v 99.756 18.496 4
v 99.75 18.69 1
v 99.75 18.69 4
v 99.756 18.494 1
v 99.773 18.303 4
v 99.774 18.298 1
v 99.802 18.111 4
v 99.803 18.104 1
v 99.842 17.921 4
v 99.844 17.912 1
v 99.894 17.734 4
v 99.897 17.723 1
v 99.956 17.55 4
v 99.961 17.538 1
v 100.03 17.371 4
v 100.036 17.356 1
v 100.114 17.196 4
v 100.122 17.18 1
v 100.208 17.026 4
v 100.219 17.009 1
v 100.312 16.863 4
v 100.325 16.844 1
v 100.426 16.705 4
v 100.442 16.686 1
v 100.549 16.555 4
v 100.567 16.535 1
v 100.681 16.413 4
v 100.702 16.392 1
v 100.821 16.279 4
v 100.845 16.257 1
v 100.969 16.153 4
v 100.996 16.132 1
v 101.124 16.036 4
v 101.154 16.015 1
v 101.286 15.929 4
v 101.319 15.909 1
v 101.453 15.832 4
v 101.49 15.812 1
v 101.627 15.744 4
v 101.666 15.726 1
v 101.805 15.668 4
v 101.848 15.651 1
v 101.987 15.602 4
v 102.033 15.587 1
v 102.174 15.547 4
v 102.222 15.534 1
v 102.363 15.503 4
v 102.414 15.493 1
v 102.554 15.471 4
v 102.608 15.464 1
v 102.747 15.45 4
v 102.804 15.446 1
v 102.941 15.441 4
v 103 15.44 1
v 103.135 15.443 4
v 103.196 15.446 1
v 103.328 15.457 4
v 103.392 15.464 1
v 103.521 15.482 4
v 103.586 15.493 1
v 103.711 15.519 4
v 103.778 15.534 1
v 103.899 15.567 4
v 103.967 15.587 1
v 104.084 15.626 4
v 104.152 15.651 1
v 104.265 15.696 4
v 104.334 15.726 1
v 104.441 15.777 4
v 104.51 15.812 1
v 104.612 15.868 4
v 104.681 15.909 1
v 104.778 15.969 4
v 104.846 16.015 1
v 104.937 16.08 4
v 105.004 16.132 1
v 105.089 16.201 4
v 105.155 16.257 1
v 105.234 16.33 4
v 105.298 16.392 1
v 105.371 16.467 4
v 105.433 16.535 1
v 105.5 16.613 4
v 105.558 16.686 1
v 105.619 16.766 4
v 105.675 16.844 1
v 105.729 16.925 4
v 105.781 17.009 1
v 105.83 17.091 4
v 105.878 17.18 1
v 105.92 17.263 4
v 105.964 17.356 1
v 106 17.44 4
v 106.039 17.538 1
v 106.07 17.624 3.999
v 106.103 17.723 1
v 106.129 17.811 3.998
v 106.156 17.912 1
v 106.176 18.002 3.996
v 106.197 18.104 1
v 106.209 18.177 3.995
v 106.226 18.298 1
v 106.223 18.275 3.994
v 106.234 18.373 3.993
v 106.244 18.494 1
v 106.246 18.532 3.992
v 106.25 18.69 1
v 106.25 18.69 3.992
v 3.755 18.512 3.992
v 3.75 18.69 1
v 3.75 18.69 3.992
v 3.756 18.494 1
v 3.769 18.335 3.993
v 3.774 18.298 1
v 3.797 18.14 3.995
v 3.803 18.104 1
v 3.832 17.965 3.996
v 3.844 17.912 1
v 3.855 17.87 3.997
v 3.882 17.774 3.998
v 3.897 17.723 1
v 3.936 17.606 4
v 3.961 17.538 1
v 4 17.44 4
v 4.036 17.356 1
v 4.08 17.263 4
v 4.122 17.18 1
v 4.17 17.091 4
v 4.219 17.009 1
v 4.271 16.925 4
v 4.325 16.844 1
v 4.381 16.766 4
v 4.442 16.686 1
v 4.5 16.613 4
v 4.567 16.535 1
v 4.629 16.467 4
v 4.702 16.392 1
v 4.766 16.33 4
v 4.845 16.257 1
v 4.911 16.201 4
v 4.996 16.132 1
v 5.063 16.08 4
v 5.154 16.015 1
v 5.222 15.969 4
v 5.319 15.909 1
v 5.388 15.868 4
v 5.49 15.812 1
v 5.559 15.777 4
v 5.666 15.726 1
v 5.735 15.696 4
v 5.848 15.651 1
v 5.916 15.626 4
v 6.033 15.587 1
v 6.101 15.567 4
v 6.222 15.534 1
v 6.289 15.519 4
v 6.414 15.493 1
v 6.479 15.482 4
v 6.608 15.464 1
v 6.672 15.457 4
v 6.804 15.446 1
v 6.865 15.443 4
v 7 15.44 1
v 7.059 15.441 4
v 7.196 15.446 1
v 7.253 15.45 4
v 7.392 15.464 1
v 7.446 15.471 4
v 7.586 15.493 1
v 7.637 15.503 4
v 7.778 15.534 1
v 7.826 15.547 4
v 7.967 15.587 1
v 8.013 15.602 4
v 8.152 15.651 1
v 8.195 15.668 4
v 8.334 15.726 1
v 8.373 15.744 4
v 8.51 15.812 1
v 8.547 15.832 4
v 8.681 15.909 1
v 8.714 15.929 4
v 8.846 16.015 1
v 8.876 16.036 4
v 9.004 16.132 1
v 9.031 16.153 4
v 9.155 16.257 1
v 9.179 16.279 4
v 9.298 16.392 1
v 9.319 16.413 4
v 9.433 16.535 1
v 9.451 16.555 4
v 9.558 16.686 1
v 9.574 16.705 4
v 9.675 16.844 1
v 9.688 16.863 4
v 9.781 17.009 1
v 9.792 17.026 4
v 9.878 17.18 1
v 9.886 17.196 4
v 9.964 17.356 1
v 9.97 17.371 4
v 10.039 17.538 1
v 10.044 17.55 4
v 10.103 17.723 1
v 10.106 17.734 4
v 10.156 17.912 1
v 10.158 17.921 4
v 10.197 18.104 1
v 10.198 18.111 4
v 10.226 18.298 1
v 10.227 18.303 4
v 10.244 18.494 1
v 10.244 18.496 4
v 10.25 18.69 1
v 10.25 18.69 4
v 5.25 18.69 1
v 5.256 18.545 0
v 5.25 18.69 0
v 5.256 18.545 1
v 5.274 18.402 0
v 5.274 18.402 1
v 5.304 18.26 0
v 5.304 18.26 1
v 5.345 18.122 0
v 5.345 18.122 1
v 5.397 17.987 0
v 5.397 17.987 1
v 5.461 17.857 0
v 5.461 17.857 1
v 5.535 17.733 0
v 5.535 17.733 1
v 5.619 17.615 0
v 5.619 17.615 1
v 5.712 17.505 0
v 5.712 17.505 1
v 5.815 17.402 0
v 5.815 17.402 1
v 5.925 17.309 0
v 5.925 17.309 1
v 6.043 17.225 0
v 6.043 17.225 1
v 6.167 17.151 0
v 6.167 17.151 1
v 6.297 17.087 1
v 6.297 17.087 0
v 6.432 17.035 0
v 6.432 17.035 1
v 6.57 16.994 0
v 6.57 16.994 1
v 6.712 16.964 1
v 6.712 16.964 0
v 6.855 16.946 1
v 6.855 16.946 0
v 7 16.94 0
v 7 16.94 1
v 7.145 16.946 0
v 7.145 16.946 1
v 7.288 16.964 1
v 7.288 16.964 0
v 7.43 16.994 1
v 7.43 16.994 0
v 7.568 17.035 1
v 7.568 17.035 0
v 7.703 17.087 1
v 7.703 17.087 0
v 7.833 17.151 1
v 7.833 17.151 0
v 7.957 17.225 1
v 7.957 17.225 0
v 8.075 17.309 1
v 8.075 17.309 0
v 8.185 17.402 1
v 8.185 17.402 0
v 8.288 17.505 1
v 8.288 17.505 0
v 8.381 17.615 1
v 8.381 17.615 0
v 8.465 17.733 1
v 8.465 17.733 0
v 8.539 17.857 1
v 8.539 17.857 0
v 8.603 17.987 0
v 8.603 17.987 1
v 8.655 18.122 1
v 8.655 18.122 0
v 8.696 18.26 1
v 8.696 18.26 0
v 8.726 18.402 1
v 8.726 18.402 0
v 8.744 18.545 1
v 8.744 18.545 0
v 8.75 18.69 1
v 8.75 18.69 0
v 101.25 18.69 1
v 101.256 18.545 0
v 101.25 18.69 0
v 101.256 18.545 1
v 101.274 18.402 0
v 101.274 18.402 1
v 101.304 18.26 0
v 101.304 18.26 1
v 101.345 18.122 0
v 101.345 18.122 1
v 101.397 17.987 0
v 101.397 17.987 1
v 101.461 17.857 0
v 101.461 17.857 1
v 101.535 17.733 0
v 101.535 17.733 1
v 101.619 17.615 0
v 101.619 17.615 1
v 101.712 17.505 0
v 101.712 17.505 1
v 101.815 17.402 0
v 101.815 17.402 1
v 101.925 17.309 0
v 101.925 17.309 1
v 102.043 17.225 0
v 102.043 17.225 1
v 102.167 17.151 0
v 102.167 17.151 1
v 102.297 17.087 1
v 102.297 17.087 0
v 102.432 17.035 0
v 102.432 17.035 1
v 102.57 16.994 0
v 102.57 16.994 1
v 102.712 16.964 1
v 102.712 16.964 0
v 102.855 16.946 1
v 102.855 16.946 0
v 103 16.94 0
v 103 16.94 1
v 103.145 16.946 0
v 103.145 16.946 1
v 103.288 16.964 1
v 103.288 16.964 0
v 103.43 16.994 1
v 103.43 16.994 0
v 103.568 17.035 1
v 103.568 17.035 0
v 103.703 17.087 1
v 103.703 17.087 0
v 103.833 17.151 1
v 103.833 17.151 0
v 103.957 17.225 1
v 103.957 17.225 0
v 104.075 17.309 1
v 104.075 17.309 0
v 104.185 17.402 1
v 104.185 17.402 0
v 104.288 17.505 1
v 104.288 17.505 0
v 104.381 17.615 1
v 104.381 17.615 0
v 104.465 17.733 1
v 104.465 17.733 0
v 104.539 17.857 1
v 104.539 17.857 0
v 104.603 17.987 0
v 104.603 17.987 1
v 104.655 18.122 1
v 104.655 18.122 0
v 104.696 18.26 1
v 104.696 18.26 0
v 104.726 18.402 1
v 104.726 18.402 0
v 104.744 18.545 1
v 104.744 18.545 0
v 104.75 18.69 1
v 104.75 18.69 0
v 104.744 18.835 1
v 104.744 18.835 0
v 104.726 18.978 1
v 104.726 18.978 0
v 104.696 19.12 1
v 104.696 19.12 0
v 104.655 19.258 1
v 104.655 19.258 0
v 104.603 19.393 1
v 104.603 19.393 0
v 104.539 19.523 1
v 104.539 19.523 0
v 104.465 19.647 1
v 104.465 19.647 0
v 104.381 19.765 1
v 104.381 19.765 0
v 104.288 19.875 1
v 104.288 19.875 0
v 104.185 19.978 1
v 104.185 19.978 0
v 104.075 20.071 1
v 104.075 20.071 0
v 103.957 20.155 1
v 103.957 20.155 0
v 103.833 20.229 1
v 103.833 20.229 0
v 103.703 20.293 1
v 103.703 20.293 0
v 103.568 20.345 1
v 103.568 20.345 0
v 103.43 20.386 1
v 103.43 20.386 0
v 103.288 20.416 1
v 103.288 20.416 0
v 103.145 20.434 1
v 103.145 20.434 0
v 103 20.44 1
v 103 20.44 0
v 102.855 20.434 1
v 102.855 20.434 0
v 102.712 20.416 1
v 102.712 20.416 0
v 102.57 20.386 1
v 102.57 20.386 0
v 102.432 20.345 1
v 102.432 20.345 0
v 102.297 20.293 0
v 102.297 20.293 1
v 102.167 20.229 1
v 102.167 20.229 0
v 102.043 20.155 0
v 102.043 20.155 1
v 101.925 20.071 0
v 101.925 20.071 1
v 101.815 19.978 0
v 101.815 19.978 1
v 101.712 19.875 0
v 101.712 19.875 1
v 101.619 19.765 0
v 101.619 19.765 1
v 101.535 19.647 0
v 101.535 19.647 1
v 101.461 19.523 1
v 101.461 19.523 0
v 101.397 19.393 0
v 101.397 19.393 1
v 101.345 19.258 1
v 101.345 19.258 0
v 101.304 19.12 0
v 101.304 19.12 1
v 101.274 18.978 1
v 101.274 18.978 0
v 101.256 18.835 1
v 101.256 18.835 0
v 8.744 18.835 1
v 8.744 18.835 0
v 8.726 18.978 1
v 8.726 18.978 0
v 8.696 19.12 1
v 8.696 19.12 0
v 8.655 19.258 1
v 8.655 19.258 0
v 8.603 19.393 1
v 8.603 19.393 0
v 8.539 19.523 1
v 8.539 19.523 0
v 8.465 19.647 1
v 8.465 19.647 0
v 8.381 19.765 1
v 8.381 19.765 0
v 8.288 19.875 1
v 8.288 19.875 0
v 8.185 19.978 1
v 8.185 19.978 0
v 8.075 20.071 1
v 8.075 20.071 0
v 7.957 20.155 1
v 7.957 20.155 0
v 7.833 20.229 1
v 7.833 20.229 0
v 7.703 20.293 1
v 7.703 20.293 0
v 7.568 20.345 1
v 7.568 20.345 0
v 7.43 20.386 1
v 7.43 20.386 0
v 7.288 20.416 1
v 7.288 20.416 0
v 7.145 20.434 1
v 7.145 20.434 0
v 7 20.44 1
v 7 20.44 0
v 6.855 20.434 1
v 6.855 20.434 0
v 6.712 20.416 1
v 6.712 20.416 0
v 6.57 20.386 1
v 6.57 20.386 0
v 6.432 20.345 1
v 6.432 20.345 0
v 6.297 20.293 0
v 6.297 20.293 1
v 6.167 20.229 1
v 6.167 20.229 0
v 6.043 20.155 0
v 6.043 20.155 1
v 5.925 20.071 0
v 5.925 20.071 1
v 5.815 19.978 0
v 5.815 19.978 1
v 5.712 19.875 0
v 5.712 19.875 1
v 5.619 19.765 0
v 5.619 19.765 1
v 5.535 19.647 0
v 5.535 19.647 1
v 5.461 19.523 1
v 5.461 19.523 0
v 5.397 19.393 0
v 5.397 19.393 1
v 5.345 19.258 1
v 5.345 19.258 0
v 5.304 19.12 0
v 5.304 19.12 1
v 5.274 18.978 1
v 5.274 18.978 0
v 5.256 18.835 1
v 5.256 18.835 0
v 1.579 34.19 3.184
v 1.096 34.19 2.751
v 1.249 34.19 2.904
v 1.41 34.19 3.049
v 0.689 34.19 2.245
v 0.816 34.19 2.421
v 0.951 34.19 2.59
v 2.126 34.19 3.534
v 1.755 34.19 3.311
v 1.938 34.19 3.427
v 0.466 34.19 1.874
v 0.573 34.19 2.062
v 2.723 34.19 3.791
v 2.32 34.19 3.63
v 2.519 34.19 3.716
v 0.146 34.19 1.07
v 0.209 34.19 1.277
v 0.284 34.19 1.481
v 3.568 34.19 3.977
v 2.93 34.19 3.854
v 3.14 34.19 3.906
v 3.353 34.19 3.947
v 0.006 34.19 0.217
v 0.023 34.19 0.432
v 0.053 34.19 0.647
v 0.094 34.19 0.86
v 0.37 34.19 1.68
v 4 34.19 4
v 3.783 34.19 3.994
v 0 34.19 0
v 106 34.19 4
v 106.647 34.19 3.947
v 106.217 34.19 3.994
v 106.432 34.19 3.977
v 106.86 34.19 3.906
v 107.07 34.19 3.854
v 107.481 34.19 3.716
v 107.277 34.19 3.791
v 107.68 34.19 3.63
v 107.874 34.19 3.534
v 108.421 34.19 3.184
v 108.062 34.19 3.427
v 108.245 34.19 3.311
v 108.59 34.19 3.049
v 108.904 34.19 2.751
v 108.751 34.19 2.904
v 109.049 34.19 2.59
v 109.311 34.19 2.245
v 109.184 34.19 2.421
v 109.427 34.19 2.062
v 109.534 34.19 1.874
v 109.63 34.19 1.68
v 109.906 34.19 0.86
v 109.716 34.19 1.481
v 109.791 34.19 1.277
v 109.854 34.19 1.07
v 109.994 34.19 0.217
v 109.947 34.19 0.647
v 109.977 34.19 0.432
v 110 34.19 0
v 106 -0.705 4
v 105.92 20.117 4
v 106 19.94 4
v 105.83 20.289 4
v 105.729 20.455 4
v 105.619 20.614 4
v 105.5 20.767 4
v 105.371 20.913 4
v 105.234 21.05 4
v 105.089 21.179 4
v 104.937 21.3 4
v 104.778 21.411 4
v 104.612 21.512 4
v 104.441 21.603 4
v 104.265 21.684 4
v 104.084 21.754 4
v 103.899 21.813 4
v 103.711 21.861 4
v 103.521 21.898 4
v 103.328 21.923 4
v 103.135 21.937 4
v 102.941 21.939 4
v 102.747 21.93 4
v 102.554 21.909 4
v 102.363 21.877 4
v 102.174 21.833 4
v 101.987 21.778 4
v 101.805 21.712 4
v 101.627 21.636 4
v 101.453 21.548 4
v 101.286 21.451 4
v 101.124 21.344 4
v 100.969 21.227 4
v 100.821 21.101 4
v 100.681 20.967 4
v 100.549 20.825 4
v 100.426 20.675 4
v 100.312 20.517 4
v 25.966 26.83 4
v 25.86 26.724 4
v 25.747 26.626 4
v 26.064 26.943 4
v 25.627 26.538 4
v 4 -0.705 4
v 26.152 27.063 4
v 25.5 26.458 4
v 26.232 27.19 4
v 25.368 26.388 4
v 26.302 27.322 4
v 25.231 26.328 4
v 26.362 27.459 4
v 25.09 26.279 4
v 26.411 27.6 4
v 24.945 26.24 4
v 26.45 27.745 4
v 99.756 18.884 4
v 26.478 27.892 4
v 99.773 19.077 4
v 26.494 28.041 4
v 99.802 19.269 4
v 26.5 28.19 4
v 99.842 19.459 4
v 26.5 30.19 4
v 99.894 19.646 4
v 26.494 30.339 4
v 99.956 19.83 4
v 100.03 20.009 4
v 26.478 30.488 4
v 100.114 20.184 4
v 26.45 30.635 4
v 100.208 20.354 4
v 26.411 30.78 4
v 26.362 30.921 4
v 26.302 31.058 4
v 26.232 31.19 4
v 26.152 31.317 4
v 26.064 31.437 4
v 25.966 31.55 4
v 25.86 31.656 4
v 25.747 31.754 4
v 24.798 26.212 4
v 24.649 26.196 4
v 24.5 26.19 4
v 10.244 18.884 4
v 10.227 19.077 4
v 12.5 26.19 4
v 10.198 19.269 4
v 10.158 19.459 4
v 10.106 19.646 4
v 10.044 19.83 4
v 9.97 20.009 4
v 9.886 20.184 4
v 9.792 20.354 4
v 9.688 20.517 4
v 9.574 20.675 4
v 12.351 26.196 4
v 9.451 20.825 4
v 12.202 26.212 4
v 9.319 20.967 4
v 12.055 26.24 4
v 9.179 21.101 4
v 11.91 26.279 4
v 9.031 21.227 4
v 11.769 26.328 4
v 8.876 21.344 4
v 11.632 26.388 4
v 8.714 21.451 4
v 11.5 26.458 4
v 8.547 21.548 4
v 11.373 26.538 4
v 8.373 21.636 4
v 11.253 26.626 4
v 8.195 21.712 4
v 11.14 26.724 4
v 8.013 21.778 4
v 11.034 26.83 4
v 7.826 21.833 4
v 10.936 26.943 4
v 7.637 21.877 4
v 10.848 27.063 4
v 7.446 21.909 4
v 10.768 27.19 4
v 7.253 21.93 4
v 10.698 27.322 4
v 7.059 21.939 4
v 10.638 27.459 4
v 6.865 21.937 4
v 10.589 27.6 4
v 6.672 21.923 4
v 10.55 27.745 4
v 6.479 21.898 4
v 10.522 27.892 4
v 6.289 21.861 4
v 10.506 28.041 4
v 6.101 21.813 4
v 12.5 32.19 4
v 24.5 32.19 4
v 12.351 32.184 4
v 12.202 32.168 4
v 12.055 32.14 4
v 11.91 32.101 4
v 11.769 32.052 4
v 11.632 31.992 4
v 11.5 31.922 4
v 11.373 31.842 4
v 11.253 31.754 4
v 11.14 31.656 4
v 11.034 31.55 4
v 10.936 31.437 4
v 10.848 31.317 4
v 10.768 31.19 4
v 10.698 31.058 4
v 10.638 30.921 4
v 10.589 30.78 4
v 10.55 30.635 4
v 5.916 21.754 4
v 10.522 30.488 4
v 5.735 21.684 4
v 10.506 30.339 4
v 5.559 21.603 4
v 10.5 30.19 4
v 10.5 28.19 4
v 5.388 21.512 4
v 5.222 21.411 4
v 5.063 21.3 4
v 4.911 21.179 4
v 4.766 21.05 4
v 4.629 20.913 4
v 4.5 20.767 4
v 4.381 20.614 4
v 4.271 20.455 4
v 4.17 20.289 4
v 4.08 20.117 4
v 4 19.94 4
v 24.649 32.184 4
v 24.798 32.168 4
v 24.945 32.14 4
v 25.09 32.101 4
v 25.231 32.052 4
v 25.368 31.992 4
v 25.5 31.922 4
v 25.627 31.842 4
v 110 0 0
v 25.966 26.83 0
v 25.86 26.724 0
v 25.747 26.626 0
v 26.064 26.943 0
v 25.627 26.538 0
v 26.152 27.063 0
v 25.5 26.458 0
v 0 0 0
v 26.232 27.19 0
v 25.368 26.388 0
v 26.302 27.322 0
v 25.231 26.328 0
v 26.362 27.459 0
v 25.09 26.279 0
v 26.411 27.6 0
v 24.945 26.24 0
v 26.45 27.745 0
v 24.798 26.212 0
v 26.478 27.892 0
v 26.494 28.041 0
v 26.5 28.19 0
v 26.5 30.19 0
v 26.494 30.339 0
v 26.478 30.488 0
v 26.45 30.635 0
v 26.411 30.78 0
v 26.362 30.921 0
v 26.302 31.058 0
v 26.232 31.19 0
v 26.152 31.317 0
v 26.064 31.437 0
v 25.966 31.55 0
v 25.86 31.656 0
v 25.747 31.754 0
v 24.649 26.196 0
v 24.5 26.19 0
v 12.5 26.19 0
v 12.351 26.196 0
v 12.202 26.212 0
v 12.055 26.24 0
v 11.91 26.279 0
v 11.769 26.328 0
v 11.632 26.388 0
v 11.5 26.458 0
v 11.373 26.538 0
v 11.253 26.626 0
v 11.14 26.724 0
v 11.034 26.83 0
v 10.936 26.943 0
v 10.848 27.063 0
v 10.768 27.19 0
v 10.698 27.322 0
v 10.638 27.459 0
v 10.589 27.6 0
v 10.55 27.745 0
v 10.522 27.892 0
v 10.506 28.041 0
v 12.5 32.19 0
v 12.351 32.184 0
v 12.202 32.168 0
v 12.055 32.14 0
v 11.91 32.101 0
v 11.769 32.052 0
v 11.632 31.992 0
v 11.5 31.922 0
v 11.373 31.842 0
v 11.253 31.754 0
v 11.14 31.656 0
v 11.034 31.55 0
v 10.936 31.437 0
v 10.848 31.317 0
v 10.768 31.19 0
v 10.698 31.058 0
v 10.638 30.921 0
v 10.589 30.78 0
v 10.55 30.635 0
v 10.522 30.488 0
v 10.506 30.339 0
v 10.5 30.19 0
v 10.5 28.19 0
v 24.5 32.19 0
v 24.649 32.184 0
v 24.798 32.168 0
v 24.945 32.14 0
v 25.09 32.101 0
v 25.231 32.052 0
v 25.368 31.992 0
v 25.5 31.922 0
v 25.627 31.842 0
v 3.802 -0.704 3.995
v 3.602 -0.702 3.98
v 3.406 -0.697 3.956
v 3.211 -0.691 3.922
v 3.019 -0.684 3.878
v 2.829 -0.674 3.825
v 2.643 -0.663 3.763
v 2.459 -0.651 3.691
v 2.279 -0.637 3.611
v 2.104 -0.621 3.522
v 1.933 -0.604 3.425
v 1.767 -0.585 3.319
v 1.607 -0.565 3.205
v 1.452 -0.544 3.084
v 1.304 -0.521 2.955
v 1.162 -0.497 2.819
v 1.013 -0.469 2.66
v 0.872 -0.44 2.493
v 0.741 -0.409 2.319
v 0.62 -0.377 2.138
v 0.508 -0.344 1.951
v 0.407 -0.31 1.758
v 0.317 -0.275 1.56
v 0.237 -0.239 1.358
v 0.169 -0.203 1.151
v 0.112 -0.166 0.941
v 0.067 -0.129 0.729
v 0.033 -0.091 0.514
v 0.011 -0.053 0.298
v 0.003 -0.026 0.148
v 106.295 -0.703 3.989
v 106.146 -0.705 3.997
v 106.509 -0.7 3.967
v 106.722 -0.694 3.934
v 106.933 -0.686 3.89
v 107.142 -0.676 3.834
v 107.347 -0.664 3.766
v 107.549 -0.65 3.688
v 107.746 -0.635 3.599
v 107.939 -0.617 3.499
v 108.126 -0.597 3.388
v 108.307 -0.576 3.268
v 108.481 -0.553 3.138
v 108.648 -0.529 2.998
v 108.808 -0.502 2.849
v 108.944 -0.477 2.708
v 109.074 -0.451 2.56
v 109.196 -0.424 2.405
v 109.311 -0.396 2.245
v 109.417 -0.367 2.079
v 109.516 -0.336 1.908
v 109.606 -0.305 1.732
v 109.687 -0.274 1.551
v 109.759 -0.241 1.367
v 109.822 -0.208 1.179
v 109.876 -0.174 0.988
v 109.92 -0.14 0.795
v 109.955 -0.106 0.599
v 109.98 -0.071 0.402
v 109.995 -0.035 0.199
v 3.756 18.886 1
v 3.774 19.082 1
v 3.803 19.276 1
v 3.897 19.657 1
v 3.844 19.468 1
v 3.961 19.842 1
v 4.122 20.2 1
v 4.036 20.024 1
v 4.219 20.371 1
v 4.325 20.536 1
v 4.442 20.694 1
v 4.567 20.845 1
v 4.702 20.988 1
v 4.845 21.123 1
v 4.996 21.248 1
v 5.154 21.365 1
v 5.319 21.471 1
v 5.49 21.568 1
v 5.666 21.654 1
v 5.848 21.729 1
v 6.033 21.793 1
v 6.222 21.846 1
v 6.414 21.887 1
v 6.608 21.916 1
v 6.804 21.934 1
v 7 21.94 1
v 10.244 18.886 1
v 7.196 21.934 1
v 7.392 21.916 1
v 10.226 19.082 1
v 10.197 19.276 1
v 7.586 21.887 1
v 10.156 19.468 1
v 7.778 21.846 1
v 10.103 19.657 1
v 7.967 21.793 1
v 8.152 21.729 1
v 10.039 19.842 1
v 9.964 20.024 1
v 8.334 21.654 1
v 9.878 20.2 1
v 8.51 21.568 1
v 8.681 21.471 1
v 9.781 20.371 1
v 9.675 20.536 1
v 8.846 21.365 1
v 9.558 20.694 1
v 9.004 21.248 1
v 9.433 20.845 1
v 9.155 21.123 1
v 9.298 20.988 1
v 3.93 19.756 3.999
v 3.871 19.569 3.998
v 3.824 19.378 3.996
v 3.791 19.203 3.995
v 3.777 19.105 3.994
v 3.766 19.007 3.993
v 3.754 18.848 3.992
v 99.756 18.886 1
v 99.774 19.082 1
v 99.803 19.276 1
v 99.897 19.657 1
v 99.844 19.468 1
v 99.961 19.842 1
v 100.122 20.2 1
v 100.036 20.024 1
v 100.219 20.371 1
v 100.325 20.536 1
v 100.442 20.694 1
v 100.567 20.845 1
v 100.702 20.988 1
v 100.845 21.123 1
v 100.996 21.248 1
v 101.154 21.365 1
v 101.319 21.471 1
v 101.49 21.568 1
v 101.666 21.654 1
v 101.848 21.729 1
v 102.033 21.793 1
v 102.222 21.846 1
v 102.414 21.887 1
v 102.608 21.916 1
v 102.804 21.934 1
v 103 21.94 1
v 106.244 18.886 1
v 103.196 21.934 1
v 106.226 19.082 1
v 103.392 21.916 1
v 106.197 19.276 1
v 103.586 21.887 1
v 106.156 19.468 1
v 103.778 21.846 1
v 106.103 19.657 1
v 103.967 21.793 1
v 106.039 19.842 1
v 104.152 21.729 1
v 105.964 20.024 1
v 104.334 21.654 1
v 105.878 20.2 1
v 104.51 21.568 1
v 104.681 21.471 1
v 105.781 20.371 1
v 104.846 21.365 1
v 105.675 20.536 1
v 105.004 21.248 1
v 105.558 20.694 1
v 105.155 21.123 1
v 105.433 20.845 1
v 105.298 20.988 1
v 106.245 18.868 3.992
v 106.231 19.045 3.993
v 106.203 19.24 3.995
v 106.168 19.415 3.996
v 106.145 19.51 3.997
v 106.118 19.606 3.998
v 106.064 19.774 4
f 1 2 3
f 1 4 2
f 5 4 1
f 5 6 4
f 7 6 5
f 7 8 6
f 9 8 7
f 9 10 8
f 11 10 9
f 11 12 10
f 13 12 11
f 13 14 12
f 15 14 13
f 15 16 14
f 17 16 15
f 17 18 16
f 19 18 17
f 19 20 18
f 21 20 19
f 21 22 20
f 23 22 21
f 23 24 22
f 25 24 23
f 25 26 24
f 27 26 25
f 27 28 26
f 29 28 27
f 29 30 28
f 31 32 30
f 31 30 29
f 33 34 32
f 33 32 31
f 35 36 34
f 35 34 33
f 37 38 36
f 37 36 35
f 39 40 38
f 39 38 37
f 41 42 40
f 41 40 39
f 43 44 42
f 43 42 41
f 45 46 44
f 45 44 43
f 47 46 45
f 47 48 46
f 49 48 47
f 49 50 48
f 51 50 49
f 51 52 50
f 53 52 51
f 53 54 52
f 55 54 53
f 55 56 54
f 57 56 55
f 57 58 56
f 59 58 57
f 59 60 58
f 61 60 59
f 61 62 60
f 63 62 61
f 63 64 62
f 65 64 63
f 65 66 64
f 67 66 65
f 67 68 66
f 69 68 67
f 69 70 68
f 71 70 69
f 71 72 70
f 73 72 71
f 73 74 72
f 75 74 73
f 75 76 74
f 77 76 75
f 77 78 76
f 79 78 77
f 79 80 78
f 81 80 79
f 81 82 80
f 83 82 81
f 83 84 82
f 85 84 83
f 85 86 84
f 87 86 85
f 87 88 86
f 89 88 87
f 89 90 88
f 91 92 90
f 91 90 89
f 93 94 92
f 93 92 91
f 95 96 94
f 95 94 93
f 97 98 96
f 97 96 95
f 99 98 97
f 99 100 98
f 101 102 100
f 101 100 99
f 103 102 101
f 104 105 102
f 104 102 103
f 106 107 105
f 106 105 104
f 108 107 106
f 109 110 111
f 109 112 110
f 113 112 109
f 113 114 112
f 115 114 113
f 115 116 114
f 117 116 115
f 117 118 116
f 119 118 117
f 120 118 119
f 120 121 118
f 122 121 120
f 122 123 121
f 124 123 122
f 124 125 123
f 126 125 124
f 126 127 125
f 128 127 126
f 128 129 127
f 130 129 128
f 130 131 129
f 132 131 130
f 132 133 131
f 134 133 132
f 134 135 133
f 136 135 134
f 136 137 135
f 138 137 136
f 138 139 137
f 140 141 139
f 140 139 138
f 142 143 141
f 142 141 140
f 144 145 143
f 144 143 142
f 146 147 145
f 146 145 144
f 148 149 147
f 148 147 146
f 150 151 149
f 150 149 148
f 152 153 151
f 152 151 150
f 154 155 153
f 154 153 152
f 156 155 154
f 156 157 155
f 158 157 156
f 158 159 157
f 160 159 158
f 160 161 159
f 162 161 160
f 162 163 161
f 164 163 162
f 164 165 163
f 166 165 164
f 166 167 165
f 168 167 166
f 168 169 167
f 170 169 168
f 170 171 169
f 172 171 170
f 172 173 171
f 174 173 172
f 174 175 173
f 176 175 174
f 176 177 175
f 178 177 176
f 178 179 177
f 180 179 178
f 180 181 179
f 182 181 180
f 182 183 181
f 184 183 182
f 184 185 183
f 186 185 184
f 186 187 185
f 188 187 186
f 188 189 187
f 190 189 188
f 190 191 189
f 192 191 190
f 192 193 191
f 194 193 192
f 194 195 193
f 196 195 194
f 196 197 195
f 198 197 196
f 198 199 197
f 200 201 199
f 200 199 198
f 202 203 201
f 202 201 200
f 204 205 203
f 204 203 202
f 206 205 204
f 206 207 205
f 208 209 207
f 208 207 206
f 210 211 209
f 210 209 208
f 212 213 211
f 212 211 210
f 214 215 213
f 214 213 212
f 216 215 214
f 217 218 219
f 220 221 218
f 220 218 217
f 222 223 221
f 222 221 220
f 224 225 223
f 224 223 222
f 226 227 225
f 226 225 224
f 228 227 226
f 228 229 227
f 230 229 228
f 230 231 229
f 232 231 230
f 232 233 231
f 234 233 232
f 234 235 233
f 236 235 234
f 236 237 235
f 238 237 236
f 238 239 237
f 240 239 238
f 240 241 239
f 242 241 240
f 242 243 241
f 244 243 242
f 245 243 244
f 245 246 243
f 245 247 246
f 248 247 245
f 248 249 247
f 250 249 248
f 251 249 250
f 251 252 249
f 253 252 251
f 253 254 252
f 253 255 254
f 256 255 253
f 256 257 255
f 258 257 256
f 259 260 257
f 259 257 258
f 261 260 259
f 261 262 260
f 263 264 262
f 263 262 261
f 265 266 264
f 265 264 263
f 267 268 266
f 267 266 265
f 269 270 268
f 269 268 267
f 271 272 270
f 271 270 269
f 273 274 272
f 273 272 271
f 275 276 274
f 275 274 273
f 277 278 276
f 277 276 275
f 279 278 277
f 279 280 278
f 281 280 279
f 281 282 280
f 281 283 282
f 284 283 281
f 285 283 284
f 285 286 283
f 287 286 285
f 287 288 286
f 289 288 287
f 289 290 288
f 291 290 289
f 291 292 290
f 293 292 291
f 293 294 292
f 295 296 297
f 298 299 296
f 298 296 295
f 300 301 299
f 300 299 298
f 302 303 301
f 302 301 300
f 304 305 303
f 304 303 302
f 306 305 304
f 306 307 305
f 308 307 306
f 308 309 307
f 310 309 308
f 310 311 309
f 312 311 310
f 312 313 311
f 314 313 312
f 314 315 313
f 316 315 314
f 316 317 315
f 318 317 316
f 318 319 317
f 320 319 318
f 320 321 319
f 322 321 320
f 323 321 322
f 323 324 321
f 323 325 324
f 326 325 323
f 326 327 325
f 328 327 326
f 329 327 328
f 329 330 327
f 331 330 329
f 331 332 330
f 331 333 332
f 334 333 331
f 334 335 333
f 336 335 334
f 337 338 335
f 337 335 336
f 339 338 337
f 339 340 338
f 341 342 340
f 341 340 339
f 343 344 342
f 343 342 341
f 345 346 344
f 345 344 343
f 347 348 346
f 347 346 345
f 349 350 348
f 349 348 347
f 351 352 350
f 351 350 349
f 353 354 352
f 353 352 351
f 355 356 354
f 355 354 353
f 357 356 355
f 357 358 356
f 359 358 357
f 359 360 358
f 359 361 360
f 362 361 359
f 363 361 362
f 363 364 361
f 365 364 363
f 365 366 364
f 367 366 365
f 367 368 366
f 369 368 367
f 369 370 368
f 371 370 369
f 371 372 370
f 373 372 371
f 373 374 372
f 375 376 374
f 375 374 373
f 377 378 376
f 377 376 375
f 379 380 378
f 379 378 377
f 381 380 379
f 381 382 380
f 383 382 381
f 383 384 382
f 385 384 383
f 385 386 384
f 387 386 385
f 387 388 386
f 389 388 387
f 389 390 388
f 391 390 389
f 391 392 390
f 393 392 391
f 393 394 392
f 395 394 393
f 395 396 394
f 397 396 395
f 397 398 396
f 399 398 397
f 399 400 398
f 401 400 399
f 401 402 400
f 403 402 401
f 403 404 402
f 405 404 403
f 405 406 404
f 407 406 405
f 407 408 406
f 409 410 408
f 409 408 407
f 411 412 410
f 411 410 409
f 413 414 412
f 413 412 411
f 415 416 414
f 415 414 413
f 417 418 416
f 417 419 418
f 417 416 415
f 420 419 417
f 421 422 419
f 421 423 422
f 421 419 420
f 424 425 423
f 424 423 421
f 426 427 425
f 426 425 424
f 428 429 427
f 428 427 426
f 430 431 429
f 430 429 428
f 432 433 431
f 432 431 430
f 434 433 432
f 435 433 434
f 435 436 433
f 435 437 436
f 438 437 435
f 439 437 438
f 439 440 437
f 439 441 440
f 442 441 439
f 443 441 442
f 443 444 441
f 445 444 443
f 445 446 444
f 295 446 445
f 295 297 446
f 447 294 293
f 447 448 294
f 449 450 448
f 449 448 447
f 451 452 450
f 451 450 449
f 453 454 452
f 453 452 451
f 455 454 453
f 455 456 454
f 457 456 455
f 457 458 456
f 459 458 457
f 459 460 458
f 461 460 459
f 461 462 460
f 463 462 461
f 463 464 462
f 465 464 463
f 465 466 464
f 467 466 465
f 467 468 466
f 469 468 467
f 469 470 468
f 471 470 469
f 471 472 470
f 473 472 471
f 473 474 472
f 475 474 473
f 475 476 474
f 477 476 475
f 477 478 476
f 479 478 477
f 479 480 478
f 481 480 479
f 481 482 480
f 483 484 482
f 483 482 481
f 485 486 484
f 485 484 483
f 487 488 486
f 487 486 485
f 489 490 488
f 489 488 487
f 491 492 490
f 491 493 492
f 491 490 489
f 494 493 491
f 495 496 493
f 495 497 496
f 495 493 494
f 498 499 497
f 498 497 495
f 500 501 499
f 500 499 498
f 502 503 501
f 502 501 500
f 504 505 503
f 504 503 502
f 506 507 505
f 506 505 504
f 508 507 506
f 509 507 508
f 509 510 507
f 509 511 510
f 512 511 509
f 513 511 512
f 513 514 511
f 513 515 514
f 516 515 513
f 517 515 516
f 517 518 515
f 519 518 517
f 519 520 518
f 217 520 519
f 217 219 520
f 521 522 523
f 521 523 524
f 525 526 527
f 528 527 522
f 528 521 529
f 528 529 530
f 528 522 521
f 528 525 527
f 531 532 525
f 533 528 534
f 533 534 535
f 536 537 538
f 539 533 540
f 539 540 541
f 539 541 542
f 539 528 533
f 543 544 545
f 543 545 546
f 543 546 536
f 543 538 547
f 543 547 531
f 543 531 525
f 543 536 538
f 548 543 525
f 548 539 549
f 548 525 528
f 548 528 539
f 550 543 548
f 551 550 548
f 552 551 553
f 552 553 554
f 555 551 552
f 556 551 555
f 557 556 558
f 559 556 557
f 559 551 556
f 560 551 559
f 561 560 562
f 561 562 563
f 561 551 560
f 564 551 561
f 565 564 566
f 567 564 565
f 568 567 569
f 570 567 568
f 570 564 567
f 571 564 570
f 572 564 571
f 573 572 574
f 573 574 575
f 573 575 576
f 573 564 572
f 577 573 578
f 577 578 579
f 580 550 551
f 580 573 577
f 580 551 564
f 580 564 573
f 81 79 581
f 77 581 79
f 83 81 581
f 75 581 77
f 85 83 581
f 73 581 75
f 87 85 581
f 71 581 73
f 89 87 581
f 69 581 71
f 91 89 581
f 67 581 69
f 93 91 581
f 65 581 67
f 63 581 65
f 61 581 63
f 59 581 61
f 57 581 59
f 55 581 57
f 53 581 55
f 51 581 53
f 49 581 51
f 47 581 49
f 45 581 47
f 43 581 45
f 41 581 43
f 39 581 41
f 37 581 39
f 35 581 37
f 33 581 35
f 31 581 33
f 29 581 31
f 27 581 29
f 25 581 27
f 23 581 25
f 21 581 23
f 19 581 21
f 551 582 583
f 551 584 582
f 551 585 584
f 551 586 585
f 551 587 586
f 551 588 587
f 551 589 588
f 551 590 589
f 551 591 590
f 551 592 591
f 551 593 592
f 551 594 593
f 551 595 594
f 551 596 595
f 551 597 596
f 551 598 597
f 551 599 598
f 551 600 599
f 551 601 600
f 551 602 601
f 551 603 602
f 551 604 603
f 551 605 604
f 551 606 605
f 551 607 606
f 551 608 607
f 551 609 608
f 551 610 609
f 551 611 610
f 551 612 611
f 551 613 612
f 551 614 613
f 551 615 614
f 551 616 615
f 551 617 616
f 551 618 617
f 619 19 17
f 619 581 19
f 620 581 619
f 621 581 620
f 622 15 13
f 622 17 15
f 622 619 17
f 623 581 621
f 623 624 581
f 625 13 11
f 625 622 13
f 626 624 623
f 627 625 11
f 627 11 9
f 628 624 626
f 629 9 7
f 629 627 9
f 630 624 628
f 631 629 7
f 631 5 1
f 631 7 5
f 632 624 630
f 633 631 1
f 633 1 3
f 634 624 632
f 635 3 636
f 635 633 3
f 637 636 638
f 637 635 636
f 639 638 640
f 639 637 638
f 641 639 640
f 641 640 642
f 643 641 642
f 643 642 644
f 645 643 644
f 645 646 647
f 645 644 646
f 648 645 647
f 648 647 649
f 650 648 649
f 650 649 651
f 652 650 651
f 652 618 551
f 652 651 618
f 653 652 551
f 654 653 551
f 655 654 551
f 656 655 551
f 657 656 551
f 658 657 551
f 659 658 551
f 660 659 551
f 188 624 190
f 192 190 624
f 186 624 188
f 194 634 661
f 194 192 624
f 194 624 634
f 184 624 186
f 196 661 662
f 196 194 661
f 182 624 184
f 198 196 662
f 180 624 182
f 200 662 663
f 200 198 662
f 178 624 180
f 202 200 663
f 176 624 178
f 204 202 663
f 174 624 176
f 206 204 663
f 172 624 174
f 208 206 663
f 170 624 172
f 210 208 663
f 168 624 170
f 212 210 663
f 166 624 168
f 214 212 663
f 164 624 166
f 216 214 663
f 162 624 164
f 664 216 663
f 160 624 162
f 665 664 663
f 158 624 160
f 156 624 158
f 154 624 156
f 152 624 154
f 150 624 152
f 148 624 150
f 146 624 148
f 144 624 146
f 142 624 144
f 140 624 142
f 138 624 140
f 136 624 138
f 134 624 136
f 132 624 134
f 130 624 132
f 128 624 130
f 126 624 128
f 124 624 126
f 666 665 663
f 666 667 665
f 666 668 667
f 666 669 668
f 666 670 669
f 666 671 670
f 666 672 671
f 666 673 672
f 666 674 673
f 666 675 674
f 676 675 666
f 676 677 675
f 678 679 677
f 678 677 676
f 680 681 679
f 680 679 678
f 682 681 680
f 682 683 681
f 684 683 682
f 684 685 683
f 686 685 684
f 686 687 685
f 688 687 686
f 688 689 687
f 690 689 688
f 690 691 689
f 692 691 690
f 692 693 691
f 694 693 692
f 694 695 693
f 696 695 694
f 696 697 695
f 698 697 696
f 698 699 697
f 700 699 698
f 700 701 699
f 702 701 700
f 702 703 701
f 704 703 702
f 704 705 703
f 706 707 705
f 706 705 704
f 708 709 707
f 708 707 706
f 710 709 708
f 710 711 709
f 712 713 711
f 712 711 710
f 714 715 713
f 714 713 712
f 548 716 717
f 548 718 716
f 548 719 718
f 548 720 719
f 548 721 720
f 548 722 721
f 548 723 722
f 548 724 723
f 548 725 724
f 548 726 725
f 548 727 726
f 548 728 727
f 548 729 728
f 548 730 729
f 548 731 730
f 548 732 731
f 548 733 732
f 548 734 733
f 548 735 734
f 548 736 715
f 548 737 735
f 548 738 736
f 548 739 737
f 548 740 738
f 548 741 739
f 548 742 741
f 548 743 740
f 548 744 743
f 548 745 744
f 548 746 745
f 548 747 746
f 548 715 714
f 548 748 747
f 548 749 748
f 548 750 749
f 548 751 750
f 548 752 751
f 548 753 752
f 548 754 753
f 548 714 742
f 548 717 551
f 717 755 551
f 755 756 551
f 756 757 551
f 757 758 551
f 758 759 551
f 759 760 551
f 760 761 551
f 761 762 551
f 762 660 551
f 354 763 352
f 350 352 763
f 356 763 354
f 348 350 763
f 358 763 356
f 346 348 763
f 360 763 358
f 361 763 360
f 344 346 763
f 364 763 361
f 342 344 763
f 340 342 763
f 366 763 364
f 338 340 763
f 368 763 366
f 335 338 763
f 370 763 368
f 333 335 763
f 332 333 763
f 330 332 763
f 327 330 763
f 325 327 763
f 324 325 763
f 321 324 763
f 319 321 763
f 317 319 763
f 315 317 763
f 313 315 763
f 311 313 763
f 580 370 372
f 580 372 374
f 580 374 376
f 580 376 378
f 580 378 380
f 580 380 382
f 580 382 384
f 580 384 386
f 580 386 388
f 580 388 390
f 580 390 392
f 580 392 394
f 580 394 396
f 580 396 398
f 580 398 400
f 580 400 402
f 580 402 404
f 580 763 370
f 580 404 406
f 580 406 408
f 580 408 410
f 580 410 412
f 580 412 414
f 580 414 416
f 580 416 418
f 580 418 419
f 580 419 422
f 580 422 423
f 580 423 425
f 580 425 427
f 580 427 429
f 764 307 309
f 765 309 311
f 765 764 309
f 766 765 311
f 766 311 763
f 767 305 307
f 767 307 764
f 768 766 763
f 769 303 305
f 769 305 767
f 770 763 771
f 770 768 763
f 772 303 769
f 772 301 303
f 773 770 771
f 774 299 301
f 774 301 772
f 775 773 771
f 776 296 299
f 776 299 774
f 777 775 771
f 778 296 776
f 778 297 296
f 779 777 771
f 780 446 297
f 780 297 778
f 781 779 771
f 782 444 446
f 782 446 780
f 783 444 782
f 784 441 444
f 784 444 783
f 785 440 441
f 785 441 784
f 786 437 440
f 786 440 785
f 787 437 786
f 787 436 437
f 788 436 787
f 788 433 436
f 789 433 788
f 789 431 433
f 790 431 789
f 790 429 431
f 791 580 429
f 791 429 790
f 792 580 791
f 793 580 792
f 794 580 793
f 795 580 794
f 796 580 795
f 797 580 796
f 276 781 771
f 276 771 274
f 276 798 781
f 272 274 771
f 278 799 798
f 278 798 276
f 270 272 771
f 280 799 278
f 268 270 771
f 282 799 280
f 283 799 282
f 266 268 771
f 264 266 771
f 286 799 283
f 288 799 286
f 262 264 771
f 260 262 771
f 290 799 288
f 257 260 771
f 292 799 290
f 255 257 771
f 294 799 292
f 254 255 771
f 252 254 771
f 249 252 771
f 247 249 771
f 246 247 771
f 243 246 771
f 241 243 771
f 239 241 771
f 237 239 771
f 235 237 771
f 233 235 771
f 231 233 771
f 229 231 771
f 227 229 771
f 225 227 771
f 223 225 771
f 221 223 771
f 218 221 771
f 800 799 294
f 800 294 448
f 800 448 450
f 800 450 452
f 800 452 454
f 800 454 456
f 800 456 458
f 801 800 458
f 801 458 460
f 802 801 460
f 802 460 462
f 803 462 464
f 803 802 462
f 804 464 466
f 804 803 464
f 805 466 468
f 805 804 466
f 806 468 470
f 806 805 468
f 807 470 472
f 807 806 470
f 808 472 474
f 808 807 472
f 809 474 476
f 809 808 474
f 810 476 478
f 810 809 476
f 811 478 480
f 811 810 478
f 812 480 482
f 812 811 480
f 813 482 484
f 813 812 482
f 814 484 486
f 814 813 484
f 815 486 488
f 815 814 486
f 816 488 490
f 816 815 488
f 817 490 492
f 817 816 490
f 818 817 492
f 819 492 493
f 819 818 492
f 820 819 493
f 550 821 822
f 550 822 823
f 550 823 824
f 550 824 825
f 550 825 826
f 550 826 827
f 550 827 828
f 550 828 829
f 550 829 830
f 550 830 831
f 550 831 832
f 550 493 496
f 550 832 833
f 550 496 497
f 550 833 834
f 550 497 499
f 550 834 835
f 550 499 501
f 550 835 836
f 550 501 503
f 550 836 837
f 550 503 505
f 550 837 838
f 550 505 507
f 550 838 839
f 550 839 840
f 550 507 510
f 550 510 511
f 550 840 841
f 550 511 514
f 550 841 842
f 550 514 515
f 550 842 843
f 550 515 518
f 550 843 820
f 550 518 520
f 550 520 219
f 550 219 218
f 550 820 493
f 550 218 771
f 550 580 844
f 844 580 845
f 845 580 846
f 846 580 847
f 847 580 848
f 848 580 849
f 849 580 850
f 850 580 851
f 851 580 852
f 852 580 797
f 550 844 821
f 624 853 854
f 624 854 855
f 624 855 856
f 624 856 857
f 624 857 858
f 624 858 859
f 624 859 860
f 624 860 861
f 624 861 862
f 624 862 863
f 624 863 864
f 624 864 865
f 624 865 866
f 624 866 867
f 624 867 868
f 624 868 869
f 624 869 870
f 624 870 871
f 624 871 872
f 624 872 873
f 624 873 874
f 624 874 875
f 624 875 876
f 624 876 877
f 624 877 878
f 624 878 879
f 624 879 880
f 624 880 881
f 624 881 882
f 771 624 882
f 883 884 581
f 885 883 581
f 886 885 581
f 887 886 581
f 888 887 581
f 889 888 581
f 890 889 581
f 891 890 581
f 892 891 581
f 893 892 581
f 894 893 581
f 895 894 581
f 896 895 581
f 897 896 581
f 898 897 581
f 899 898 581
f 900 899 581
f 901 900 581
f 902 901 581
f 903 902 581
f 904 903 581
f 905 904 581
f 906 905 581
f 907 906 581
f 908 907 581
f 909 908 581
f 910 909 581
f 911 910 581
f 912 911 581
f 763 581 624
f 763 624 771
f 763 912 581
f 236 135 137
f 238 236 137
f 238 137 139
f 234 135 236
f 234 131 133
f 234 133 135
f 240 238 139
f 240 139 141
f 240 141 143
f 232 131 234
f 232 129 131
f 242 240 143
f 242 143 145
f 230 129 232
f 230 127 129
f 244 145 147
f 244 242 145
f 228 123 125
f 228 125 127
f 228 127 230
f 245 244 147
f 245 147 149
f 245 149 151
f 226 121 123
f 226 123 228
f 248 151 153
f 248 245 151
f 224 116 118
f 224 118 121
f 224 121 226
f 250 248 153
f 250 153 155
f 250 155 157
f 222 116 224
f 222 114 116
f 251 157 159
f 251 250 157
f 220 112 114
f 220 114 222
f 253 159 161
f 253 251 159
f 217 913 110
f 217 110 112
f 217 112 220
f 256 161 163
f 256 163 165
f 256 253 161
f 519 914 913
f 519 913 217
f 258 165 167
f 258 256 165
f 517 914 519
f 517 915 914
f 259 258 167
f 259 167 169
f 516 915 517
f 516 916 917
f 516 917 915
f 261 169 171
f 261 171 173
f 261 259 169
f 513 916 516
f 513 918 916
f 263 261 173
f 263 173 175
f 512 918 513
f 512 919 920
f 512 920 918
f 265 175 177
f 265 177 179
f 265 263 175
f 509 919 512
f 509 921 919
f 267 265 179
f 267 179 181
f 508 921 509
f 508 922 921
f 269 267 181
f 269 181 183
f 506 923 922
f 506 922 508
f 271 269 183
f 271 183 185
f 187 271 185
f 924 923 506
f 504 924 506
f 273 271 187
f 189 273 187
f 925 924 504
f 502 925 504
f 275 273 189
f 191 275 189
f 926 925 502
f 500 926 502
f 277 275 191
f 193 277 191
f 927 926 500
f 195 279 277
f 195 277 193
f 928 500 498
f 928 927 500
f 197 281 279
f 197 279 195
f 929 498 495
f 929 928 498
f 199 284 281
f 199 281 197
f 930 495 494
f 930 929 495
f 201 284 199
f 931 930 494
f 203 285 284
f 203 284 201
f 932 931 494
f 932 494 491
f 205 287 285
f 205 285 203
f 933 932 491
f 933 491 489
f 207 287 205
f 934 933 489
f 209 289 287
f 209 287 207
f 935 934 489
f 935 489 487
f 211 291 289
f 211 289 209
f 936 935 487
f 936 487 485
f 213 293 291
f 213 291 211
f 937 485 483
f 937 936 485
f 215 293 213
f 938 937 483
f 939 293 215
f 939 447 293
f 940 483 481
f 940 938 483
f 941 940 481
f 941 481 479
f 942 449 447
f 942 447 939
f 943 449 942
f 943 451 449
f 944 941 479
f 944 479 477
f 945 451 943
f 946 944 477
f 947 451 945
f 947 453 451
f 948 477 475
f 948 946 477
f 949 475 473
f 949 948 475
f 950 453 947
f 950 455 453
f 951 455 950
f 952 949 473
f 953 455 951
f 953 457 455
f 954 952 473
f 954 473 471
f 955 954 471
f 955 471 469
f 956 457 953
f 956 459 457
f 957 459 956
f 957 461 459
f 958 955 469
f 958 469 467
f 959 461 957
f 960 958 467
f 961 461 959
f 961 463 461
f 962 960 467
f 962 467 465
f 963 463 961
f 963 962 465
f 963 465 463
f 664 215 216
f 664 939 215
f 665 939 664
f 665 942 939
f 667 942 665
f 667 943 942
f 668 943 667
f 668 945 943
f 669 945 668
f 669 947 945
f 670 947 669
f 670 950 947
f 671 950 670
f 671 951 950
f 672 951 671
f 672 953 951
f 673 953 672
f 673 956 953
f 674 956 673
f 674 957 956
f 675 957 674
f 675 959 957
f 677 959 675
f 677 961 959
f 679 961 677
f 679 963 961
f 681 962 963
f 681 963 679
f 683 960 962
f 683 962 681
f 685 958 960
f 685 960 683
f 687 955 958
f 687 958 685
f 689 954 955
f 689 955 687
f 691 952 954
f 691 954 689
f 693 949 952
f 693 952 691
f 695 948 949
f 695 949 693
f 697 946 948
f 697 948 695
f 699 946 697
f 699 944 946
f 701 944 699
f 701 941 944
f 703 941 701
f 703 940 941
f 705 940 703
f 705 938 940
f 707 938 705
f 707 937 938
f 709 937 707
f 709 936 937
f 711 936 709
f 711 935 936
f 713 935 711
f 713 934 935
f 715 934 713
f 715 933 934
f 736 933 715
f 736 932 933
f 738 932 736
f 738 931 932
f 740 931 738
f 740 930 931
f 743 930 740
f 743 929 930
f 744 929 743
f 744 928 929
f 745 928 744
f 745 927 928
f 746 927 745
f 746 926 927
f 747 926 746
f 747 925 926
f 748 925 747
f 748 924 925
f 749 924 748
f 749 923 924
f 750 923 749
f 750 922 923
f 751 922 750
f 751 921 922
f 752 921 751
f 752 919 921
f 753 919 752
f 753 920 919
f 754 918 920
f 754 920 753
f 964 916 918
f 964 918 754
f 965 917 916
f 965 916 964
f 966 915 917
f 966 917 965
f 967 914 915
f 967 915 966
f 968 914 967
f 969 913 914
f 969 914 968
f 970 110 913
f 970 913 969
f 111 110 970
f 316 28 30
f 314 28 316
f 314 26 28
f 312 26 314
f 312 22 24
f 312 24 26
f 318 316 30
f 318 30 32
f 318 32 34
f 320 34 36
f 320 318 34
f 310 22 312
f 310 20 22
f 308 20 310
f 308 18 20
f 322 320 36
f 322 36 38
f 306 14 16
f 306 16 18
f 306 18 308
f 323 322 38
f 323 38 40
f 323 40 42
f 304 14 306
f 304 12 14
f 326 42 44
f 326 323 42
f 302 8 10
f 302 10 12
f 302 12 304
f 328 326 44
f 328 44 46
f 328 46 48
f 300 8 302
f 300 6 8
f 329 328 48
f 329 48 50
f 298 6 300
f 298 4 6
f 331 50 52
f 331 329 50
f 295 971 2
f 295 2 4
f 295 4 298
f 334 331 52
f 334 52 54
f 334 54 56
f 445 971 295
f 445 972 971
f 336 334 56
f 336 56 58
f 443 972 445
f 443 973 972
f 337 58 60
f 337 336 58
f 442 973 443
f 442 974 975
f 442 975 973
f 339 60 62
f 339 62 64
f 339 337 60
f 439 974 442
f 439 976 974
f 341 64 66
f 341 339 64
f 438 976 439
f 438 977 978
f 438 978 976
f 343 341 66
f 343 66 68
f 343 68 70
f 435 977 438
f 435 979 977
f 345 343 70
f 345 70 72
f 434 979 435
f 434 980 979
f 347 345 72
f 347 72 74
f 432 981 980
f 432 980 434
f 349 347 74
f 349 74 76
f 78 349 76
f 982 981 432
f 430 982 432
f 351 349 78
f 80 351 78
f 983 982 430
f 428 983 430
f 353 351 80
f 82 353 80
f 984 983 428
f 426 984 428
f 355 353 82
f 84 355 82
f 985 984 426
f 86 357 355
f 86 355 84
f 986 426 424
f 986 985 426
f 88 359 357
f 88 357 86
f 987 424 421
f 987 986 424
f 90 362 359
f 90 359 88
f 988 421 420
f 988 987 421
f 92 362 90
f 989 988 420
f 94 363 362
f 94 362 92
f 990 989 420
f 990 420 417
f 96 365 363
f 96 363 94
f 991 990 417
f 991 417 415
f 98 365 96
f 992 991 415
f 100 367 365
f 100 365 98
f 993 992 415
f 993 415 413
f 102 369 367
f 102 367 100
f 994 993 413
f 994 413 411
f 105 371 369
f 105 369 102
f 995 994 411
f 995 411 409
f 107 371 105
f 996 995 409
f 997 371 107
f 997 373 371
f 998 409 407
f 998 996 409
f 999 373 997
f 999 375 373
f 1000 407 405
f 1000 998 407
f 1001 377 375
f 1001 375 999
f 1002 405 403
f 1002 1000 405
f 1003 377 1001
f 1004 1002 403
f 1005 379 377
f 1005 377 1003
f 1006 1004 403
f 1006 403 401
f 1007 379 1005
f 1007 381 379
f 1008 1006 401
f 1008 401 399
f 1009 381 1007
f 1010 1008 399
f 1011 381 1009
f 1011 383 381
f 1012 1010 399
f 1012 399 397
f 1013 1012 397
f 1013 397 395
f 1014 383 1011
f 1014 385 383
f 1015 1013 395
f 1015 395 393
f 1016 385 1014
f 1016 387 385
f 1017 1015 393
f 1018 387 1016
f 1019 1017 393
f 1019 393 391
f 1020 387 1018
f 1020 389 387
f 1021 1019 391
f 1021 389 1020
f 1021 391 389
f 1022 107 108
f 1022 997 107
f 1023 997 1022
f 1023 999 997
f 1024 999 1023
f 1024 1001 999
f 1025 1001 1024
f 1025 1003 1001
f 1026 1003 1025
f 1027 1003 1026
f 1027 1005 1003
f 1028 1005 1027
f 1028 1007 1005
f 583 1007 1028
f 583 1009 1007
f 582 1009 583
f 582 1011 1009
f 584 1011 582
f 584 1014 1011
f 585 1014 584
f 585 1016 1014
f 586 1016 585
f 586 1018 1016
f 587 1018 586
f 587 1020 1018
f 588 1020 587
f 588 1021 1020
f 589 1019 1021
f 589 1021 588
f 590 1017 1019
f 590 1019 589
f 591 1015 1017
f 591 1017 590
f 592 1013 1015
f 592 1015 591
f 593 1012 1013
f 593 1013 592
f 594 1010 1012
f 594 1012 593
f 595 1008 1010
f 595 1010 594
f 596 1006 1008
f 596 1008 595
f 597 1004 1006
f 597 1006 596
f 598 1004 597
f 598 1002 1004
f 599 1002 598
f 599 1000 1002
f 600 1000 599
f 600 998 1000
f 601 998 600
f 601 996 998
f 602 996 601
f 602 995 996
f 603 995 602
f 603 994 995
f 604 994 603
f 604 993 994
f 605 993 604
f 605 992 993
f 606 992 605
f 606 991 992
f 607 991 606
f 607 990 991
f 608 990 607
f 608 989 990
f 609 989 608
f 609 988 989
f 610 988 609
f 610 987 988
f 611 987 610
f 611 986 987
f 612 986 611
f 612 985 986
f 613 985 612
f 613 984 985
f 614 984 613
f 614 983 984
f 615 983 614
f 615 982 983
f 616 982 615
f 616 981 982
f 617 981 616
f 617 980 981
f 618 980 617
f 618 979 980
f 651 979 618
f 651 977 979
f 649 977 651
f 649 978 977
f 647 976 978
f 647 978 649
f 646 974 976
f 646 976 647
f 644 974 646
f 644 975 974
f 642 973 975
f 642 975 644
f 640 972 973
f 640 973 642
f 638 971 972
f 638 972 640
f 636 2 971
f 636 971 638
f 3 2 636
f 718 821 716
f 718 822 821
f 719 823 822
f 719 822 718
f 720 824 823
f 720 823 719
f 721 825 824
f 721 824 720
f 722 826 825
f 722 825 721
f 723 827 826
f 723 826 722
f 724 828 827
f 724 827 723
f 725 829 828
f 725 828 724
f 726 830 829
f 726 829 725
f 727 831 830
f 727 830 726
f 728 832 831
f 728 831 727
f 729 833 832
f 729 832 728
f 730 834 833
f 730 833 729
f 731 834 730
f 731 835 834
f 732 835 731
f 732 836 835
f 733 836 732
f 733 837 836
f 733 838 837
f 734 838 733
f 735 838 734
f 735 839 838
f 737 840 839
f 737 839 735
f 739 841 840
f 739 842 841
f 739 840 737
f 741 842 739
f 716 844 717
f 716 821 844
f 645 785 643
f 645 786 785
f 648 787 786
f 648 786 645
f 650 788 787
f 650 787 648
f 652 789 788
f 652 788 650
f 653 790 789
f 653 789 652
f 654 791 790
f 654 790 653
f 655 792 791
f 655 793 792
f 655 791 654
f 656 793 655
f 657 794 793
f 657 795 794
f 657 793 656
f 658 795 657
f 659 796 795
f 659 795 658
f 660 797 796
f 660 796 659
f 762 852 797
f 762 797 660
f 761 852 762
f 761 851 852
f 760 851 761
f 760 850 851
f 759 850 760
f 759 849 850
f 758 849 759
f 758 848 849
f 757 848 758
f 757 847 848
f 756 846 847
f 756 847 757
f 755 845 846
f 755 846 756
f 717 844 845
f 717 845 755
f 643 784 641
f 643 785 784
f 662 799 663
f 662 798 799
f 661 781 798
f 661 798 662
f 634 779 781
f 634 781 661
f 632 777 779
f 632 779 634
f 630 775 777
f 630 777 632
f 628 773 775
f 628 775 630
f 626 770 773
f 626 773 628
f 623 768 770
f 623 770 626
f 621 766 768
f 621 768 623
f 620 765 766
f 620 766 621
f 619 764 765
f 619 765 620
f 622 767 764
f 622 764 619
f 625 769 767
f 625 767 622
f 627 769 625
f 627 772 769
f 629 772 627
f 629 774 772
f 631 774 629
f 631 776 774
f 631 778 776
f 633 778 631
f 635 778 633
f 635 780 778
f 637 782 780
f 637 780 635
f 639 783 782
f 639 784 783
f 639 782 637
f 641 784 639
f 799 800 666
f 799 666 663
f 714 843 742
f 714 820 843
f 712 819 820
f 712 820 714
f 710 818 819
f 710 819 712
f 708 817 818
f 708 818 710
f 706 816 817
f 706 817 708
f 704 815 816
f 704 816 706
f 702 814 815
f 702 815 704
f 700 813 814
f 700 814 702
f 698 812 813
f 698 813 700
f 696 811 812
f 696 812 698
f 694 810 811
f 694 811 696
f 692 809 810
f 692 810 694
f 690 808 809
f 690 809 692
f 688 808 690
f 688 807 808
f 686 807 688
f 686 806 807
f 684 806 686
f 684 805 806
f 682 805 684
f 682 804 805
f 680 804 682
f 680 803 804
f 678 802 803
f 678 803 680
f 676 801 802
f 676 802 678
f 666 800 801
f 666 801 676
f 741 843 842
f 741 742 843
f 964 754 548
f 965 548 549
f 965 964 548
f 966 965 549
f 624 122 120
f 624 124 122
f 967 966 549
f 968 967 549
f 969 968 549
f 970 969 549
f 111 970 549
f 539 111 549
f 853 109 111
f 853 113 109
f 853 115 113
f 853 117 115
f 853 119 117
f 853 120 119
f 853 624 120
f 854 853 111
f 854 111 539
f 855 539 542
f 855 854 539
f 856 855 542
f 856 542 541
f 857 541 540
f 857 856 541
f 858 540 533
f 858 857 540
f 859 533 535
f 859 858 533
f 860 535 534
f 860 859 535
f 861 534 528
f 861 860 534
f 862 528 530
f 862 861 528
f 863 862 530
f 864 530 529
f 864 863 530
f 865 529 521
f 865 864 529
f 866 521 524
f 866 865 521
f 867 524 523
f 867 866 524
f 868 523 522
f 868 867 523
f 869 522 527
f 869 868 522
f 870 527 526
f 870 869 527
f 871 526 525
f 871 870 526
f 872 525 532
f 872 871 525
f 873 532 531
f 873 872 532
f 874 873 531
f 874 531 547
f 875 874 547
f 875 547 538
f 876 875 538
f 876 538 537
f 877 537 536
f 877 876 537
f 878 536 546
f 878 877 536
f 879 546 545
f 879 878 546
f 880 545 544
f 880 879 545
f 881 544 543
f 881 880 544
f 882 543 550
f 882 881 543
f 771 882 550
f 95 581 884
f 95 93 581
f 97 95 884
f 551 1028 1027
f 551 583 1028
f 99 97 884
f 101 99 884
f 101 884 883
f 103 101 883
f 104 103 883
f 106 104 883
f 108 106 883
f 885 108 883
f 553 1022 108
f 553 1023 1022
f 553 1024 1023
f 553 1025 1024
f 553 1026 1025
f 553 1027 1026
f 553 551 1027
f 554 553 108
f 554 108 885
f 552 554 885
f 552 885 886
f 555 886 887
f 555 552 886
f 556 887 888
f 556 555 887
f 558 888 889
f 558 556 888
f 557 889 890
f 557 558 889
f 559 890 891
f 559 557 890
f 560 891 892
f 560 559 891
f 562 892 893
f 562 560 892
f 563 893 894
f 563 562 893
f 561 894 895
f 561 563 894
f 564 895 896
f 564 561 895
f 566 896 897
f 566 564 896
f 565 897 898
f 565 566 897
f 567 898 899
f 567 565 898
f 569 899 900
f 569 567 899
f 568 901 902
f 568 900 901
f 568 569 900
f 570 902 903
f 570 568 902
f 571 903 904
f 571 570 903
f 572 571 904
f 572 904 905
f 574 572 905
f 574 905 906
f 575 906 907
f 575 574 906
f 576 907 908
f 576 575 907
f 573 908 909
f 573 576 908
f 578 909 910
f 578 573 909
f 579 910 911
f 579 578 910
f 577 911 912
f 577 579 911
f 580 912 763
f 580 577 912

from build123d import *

# Parameters (mm, degrees)
ESQUISSE1_W             = 110
ESQUISSE1_H             = 34.19
BOSS_EXTRU_1_DEPTH      = 4
BOSS_EXTRU_2_DEPTH      = 110
ESQUISSE3_R             = 1.75
ENL_V_MAT_EXTRU_1_DEPTH = 4
ESQUISSE4_R             = 3.25
ENL_V_MAT_EXTRU_2_DEPTH = 3
ENL_V_MAT_EXTRU_3_DEPTH = 4
CONG_1_R                = 4


with BuildPart() as part:
    # Esquisse1 → Boss.-Extru.1 (new body)
    with BuildSketch(Plane.XY):
        with Locations((55, 17.095)):
            Rectangle(ESQUISSE1_W, ESQUISSE1_H)
    extrude(amount=BOSS_EXTRU_1_DEPTH)

    # Esquisse2 → Boss.-Extru.2 (add)
    with BuildSketch(Plane(origin=(110, 0, 0), x_dir=(0, 0, -1), z_dir=(1, 0, 0))):
        Polygon((0, 0), (-4, 0), (-4, -0.705307923), align=None)
    extrude(amount=-BOSS_EXTRU_2_DEPTH)

    # Esquisse3 → Enlèv. mat.-Extru.1 (cut)
    with BuildSketch(Plane.XY.offset(4)):
        with Locations((7, 18.69)):
            Circle(ESQUISSE3_R)
        with Locations((103, 18.69)):
            Circle(ESQUISSE3_R)
    extrude(amount=-ENL_V_MAT_EXTRU_1_DEPTH, mode=Mode.SUBTRACT)

    # Esquisse4 → Enlèv. mat.-Extru.2 (cut)
    with BuildSketch(Plane.XY.offset(4)):
        with Locations((7, 18.69)):
            Circle(ESQUISSE4_R)
        with Locations((103, 18.69)):
            Circle(ESQUISSE4_R)
    extrude(amount=-ENL_V_MAT_EXTRU_2_DEPTH, mode=Mode.SUBTRACT)

    # Esquisse5 → Enlèv. mat.-Extru.3 (cut)
    with BuildSketch(Plane.XY.offset(4)):
        with BuildLine():
            Line((12.5, 32.19), (24.5, 32.19))
            ThreePointArc((24.5, 32.19), (25.914213562, 31.604213562), (26.5, 30.19))
            Line((26.5, 30.19), (26.5, 28.19))
            ThreePointArc((26.5, 28.19), (25.914213562, 26.775786438), (24.5, 26.19))
            Line((24.5, 26.19), (12.5, 26.19))
            ThreePointArc((12.5, 26.19), (11.085786438, 26.775786438), (10.5, 28.19))
            Line((10.5, 28.19), (10.5, 30.19))
            ThreePointArc((10.5, 30.19), (11.085786438, 31.604213562), (12.5, 32.19))
        make_face()
    extrude(amount=-ENL_V_MAT_EXTRU_3_DEPTH, mode=Mode.SUBTRACT)

    # Congé1
    # the kernel refuses this fillet: 4 mm, written as the material it takes off along each edge
    with BuildSketch(Plane(origin=(0, 44.19, 4), x_dir=(1, 0, 0), z_dir=(0, -1, 0)), Plane(origin=(110, 44.19, 4), x_dir=(0, 0, -1), z_dir=(0, -1, 0))) as cong_1_piece_1:
        with BuildLine():
            CenterArc((CONG_1_R, -CONG_1_R), CONG_1_R, 90, 90)
            Line((0, -CONG_1_R), (0, 0))
            Line((0, 0), (CONG_1_R, 0))
        make_face()
    extrude(amount=54.895307923, mode=Mode.SUBTRACT)


solid = part.part
